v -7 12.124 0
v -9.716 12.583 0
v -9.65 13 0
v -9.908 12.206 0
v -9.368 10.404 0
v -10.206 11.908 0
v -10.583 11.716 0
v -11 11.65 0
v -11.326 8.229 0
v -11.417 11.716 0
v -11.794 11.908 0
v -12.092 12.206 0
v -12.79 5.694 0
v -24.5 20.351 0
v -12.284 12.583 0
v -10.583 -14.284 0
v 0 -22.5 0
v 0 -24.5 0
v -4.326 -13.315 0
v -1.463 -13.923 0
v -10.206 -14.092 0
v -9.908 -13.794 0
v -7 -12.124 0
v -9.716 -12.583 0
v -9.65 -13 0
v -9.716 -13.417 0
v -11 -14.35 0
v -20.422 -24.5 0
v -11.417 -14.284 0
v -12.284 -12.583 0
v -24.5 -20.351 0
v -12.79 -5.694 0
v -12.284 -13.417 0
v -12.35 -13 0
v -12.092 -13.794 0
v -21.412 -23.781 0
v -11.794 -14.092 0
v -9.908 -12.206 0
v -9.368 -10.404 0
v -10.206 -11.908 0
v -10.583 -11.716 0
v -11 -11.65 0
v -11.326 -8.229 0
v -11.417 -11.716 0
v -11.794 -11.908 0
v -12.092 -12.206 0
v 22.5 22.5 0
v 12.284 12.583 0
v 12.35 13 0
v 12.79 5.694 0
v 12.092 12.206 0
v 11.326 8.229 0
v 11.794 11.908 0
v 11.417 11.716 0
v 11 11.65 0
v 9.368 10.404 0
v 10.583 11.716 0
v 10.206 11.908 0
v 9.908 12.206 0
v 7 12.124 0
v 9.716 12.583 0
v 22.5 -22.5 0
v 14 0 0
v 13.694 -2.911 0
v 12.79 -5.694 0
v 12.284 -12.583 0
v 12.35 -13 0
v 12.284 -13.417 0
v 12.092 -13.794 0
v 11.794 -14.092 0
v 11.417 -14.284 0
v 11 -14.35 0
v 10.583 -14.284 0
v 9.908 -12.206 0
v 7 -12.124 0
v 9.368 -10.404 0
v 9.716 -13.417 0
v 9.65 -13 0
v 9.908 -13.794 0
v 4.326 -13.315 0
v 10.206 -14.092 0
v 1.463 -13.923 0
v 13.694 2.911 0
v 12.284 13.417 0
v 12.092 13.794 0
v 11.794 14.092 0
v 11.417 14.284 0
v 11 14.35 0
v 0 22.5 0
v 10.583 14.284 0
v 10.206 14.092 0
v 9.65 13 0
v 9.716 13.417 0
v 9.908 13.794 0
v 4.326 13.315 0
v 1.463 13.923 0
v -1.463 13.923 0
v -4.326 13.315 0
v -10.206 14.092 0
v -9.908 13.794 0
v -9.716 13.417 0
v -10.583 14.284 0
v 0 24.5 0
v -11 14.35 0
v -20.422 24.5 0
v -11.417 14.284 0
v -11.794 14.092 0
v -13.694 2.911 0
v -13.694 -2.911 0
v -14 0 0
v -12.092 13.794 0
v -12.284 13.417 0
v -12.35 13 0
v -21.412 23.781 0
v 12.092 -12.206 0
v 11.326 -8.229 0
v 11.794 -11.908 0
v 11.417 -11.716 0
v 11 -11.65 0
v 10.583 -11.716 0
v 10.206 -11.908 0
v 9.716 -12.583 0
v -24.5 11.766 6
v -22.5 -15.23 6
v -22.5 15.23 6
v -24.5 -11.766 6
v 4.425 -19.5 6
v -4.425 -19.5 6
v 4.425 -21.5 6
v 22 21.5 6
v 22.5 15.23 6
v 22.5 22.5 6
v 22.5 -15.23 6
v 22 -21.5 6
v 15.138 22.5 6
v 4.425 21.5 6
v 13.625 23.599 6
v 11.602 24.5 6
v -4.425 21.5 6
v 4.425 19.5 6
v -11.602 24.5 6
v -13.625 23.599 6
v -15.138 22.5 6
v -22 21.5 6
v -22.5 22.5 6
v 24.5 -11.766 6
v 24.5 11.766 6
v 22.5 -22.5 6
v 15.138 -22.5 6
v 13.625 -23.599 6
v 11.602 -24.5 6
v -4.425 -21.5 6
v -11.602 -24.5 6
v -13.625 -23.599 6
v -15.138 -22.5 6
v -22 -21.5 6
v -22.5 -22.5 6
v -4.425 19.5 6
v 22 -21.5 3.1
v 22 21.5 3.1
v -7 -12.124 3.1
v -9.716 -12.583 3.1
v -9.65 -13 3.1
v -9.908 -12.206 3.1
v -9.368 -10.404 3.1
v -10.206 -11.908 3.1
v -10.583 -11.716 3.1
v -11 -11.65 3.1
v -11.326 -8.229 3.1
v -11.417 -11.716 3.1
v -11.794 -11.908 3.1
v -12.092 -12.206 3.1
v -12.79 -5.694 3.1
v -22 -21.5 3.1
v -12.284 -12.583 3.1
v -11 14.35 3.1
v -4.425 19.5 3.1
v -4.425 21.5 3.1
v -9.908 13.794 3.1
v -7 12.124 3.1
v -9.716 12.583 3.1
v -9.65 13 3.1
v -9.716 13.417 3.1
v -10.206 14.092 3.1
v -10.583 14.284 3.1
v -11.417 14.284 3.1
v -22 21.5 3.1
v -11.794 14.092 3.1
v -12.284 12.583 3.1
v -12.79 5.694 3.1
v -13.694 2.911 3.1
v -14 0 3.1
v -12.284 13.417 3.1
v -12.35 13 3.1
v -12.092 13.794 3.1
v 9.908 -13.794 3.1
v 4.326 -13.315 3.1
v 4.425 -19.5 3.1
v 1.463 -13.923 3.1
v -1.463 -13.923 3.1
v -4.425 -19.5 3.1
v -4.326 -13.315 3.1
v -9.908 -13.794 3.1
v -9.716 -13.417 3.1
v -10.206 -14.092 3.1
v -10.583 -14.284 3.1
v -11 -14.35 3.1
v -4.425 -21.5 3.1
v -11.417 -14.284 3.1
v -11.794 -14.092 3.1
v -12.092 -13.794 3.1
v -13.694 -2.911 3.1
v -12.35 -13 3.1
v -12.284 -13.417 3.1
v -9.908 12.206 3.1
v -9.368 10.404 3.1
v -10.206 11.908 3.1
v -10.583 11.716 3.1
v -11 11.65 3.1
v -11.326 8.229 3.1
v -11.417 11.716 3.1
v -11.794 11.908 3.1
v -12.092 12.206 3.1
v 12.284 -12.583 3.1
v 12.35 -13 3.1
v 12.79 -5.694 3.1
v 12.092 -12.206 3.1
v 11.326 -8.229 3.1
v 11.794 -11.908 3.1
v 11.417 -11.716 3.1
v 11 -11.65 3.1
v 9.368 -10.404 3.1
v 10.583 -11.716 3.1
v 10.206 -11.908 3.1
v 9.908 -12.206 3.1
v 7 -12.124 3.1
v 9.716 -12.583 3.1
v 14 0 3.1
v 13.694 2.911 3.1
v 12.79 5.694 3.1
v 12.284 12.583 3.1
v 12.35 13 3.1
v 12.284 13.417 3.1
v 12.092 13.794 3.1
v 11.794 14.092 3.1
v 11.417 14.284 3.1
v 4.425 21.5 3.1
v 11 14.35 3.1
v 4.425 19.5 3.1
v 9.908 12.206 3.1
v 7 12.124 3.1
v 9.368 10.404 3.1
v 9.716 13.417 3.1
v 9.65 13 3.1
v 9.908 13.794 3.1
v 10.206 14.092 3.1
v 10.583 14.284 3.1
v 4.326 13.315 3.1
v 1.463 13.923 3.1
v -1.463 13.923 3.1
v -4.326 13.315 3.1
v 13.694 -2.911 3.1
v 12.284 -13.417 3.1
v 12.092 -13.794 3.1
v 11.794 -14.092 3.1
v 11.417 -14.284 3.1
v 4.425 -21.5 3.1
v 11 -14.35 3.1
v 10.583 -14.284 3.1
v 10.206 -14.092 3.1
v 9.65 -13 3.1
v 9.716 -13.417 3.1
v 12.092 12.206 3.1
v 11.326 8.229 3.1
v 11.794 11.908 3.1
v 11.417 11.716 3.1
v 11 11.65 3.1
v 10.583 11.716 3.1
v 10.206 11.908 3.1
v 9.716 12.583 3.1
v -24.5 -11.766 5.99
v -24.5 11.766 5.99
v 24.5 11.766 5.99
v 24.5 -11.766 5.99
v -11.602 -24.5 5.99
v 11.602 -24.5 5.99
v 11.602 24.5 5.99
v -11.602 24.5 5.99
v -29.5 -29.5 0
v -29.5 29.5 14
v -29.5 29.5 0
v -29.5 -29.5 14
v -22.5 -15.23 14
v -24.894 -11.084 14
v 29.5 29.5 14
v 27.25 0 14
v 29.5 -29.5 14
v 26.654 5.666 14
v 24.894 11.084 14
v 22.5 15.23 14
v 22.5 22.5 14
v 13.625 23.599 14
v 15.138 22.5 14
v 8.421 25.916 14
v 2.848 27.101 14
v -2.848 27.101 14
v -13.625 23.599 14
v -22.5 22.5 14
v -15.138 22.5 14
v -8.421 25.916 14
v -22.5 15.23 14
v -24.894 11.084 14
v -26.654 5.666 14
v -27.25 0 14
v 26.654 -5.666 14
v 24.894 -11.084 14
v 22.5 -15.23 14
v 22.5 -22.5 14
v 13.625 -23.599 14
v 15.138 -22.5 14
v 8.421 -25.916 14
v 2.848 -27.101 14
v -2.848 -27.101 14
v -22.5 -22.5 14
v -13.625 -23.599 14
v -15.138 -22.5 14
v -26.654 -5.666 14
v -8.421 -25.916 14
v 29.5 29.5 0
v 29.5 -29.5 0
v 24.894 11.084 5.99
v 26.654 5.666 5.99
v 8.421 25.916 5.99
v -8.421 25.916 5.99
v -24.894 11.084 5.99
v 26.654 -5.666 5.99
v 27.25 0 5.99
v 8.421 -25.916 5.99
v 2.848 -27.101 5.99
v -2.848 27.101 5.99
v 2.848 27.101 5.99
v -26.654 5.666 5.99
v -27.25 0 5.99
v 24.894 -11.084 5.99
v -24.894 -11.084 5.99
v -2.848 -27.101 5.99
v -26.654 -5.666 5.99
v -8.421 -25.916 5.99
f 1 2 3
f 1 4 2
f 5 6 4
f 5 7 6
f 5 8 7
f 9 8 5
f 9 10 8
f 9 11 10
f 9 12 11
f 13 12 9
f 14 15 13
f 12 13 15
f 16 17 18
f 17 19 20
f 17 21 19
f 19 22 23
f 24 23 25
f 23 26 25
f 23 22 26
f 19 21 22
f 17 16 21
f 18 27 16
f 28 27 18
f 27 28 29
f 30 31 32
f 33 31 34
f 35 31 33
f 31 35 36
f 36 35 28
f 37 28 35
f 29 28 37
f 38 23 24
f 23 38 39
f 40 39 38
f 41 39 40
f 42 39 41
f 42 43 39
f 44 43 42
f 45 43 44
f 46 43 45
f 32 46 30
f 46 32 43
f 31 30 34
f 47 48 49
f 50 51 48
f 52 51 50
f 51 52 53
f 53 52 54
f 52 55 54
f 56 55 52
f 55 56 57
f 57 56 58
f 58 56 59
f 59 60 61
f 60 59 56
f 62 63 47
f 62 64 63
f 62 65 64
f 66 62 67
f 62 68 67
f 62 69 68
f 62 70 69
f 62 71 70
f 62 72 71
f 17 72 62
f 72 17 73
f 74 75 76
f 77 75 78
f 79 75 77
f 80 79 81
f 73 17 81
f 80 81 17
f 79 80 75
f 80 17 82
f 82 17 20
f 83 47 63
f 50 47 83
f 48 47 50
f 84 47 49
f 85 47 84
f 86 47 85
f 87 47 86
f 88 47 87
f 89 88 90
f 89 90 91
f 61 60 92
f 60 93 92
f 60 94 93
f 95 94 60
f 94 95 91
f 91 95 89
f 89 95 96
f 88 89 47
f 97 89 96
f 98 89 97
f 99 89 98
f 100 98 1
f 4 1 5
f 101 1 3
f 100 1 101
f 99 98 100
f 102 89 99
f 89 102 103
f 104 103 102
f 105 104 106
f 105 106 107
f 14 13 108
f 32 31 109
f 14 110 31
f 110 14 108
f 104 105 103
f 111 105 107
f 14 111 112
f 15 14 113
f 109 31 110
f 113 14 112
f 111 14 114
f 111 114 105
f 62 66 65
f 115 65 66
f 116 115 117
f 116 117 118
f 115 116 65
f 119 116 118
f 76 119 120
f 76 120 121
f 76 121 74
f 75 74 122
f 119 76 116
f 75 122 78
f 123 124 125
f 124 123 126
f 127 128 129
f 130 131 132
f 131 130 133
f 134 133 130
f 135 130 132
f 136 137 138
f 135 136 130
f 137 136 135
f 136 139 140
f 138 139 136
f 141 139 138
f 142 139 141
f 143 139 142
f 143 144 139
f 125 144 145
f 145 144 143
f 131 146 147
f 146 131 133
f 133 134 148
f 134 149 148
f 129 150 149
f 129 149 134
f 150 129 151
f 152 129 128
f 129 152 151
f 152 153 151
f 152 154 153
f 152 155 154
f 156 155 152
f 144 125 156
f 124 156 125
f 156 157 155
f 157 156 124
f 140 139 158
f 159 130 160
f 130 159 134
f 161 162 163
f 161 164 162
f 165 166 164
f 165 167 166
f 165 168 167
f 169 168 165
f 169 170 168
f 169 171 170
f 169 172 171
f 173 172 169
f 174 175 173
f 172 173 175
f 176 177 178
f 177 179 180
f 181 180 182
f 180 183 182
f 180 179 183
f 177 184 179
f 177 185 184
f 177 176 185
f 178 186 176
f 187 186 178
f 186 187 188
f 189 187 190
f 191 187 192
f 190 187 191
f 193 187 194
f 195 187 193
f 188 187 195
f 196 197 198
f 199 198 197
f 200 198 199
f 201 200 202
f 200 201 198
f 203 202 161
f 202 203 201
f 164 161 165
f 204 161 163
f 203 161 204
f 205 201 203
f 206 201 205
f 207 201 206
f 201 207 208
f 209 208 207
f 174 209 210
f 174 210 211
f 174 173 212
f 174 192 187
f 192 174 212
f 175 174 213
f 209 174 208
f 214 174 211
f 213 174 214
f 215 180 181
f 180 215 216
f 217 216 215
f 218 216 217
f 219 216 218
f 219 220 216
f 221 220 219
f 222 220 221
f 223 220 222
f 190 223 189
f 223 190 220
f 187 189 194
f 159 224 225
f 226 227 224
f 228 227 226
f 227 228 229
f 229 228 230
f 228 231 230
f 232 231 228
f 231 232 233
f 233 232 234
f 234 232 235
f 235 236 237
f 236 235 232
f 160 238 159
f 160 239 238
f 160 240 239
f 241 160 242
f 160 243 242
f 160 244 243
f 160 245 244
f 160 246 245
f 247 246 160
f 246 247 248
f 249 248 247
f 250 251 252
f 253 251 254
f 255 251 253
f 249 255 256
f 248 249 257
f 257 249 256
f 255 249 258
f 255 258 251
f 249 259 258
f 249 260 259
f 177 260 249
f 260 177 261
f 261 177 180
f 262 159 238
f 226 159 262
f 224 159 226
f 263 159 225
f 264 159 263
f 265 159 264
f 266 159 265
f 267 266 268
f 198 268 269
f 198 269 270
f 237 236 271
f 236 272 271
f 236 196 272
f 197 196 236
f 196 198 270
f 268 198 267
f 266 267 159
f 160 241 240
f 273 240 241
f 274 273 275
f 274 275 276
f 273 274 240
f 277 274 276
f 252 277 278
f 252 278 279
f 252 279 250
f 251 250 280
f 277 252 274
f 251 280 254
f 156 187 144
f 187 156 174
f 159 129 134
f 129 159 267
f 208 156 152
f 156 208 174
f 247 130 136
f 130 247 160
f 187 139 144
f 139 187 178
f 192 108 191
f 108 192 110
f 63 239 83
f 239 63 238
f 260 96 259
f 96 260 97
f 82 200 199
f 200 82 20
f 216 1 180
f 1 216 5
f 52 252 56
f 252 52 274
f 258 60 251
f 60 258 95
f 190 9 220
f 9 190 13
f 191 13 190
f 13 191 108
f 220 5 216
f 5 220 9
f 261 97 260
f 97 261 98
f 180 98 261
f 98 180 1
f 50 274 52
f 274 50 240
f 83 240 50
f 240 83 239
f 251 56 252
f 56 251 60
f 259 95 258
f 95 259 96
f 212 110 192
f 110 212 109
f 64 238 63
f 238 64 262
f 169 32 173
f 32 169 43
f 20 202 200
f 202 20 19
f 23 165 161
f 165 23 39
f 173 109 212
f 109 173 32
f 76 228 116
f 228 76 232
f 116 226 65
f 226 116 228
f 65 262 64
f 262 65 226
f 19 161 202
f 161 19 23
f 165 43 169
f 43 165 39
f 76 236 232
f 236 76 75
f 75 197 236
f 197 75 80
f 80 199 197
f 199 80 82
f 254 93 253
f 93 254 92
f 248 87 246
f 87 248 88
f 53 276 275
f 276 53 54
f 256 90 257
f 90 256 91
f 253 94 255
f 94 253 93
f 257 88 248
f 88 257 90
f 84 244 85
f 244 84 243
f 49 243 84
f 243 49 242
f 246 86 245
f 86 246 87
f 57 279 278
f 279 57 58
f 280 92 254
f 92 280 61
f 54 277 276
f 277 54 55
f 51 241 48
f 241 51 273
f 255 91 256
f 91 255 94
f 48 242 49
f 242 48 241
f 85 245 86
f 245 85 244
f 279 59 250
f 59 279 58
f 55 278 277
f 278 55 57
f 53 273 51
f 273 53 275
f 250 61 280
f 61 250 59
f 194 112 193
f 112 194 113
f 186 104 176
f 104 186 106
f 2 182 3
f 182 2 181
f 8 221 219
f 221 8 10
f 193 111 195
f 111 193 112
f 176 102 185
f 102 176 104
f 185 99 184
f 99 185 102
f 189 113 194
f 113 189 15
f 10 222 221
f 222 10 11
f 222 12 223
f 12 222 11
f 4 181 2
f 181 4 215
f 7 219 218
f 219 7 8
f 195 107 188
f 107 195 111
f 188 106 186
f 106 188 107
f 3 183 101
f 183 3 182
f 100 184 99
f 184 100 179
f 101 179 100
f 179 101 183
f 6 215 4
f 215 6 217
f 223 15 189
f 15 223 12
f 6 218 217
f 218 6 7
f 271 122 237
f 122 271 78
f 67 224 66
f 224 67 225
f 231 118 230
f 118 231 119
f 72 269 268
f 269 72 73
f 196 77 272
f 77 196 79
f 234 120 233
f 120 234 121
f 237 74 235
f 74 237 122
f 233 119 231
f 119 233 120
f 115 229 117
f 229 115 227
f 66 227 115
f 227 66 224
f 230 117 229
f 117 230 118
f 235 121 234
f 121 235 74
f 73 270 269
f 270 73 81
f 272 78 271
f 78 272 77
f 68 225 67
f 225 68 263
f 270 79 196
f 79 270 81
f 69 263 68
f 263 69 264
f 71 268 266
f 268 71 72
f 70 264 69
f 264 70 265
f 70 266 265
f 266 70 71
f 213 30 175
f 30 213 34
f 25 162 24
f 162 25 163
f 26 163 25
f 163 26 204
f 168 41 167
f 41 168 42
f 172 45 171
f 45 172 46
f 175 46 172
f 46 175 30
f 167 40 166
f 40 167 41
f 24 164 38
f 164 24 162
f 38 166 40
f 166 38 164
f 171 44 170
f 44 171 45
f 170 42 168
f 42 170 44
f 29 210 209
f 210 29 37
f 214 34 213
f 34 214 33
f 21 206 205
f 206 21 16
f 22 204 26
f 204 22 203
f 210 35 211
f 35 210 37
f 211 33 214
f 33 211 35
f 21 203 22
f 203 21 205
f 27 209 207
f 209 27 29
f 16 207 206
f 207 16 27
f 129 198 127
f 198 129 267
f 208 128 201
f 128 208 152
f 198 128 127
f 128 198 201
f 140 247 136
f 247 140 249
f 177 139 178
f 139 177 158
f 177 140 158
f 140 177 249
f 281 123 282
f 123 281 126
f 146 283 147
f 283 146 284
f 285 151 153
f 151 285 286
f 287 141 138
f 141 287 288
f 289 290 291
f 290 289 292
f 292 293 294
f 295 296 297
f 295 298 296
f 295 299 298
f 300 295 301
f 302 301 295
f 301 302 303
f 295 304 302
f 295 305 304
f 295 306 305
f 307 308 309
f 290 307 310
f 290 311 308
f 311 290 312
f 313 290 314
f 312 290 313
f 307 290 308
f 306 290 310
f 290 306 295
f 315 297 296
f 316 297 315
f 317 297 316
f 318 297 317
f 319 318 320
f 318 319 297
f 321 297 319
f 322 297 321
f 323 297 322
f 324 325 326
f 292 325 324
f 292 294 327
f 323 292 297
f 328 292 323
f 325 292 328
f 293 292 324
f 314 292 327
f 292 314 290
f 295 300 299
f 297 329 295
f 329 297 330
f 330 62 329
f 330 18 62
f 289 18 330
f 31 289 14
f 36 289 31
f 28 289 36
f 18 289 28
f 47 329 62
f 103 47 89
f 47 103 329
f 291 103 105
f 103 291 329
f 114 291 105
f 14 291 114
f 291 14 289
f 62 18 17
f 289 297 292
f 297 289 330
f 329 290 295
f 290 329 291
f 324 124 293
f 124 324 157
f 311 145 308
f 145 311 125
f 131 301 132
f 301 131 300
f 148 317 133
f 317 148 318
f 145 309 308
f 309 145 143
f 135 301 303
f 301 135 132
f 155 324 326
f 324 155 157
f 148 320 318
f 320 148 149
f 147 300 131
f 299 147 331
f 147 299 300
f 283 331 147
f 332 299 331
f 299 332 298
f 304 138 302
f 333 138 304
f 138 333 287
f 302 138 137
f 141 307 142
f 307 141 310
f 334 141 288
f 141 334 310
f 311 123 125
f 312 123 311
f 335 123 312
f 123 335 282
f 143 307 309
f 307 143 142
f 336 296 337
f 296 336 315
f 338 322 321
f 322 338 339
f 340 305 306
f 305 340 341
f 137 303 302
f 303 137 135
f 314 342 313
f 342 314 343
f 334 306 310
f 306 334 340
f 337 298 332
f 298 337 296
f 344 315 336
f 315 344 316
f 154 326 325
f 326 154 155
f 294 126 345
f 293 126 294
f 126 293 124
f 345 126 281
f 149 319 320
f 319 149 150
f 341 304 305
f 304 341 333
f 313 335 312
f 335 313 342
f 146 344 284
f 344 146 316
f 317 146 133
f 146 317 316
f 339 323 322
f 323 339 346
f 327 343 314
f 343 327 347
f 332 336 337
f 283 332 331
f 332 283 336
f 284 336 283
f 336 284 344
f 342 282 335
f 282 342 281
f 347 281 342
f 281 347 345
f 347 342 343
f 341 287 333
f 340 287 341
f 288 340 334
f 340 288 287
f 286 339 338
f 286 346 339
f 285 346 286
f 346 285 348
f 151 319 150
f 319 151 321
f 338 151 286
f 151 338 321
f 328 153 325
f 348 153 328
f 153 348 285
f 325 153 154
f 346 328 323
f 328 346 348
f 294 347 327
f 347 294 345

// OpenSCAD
// file: Diffracter.scad
//include <Tapa.scad>
include <../../library.scad>


bigW = 88;
ori = bigW/2;
raspSellR = 59;
tuboH = 140;
H = 18.5 + 9;
selloH = 7;
tornR = 2;

huecoPared = 12;
huecoH = 22;
selloHembraRadio=40;

//Activate this to display
if(0)
{
//translate([0,0,bigW/2])
//rotate([0,90,0])
diffracter();


//soporteCylinder(radio=25.2,altura=3.8);

}


module diffracter(){	

difference(){

//Bloque
translate([-bigW/2,-bigW/2,0])
cube([bigW,bigW,H]);

/*
translate([
						-(bigW-huecoPared)/2,
						-(bigW-huecoPared)/2,
						(huecoH/2)
					])
		cube([
					bigW-huecoPared,
					bigW-huecoPared,
					H-huecoH]
				);*/


//Diffractador
translate([-37.25,-40,-0.1])
cube([74.5,80,5.6]);

//Macro
translate([0,0,5.4])
cylinder(r=(74.5/2),8.2,$fn=100);

//Sello de raspberry
//translate([0,0,-0.1])
//cylinder(r=(raspSellR/2)+1,2);

//Tubo
//translate([0,0,-0.1])
//cylinder(r=(52/2),200);

//Tornillos abajo
translate([-ori+4,-ori+4,-0.1])
cylinder(r=tornR,20);
translate([ori-4,-ori+4,-0.1])
cylinder(r=tornR,20);
translate([-ori+4,ori-4,-0.1])
cylinder(r=tornR,20);
translate([ori-4,ori-4,-0.1])
cylinder(r=tornR,20);

//Hueco
cylinder(r=36,H+1);

//Tornillos caja
translate([0,0,(tuboH/2)-7])
rotate([0,90,0])
tornillosArriba();

//Tornillo tripie
translate([-ori-0.1,0,(tuboH/2)+7])
rotate([0,90,0])
cylinder(r=5/2,5.31);

//Sello hembra
//translate([0,0,H-3])
//cylinder(r=selloHembraRadio,4);

}

//Sello cobertura
//translate([0,0,H-1])
//huyoMasPared(58,3,3);


}
// file: ../../library.scad
module tubo(
	h/*Altura*/,
	w/*Pared*/,
	d/*Diametro*/
){
  difference()
  {
    cylinder(r=(d/2), h);
    translate([0,0,-0.1])
    cylinder(r=(d/2)-(2*w), h+0.2);
  }
}

module huyoMasPared(
	d/*Diametro del hoyo*/,
	w/*Pared*/,
	h/*Altura*/,
){
  difference()
  {
    cylinder(r=((d+(2*w))/2), h);
    translate([0,0,-0.1])
    cylinder(r=(d/2), h+0.2);
  }
}

module cuboMasPared(
    w1, //Largo
    w2, //Ancho
    p1, //Pared
    p2, //Pared
    h   //Alto
)
{    
    difference()
    {
        translate([-(w1+(p1*2))/2,-(w2+(p2*2))/2,0])
        cube([(w1+(p1*2)),(w2+(p2*2)),h]);
        
        translate([-w1/2,-w2/2,-0.2])
        cube([w1,w2,h*2]);
        
    }
    
    
}

soporteW = 0.7;

module soporteCylinder()
{
  difference()
  {
	cylinder(r=radio,altura);

	translate([0,0,-0.1])
	cylinder(r=radio-soporteW,altura+0.2);
  }

  if(true){
  difference()
  {
	cylinder(r=radio+0.75,1);

	translate([0,0,-0.1])
	cylinder(r=radio-0.75,1.25);
  }}

}

module soporteOval()
{
  difference()
  {
	oval(w=ancho, h=largo, height=alto, center = false);

	translate([0,0,-0.1])
	oval(ancho-soporteW, largo, alto+0.2);
  }

  difference()
  {
	oval(w=ancho+1, h=largo+1, height=1, center = false);

	translate([0,0,-0.1])
	oval(w=ancho-1, h=largo-1, height=1.25, center = false);
  }

}


module oval(w,h, height, center = false)
{
  scale([1, h/w, 1]) cylinder(h=height, r=w, center=center);
}
// file: navaja.scad
include <../../library.scad>
include <Diffracter.scad>
//include <lente.scad>

pared = 3;


//lenRIntNavajas = 19/2;
lenIntHNavajas = 4;//3.6

offsetRanura = -0.35;//-.
offsetNavaja = 0.5;//0
offsetPosDer = 0.0;

navW = 21.5+offsetNavaja;
navH = 43;
navP = 3;//3
navTorR = 1.35;//1.2
navSepW = 9.2+offsetRanura;
navSepH = 2;


navBigW = (navW*2) + (pared*2);
navBigH = navH + pared;

navajasH = navP+lenIntHNavajas;

navajasH = 6;//8 //Quitar para altura real

soloProbar = 0;

navHoleRad = 14;

if( 0 )
{
    if( soloProbar )
    {
        difference()
        {
            translate([0,0,navajasH])
            rotate([0,180,0])
            creaNavajas( navajasH );
            
            translate([0,0,-0.2])
            cuboMasPared(49,49,30,30,15);
            
        }
    }
    else
    {
        translate([0,0,navajasH])
        rotate([0,180,0])
        creaNavajas( navajasH );
    }
}




module creaNavajas( intH )
{


//%cylinder(r=34,15);
difference()
{
    //Área navajas-lente
    translate([-bigW/2,-bigW/2,0])
    cube([bigW,bigW,intH]);
    
    //Recorte área navaja
    translate([-navW-offsetPosDer,-navH/2,-0.1])
    cube([(navW*2),navH,navP]);
    
    //Área tapón
    //translate([0,0,navP-0.4])
    cylinder(r=navHoleRad,intH+0.1);
    
    //Tornillitos
    translate([-navW/2,13,0])
    cylinder(r=navTorR,navP+lenIntHNavajas-0.1,$fn=20);
    translate([navW/2,13,0])
    cylinder(r=navTorR,navP+lenIntHNavajas-0.1,$fn=20);
    translate([-navW/2,-13,0])
    cylinder(r=navTorR,navP+lenIntHNavajas-0.1,$fn=20);
    translate([navW/2,-13,0])
    cylinder(r=navTorR,navP+lenIntHNavajas-0.1,$fn=20);
    
    //Tornillos abajo
    translate([-ori+4,-ori+4,-0.1])
    cylinder(r=tornR,20,$fn=20);
    translate([ori-4,-ori+4,-0.1])
    cylinder(r=tornR,20,$fn=20);
    translate([-ori+4,ori-4,-0.1])
    cylinder(r=tornR,20,$fn=20);
    translate([ori-4,ori-4,-0.1])
    cylinder(r=tornR,20,$fn=20);
    
    //Sello
    translate([0,0,-0.1])
    huyoMasPared(
                   64,//73
                   35,//30
                   intH+1
                  );
    //translate([0,0,-0.1])
    //cylinder(r=selloHembraRadio,4);
    
}

//translate([0,0,pared-lenP+0.2])
//translate([0,0,navajasH-lenP+0.4])
//thread_in_pitch(lenDiam,lenP,1.7);

translate([-navSepW/2,-navH/2,0])
cube([navSepW,navSepH,navP]);

translate([-(navSepW/2),(navH/2)-navSepH,0])
cube([navSepW,navSepH,navP]);



}
// main file
include <navaja.scad>


//translate([0,0,6])
//rotate([0,180,0])
navajasCorto();

difference()
{
    translate([-59/2,-59/2,0])
    cube([59,59,14]);
    
    translate([-45/2,-45/2,-0.1])
    cube([45,45,15]);
    
    translate([0,0,5.99])
    cylinder(r=54.5/2,14+1);
    
}



module navajasCorto()
{
    difference()
    {
        translate([0,0,navajasH])
        rotate([0,180,0])
        creaNavajas( navajasH );
        
        translate([0,0,-0.2])
        cuboMasPared(49,49,30,30,15);
        
    }
}
